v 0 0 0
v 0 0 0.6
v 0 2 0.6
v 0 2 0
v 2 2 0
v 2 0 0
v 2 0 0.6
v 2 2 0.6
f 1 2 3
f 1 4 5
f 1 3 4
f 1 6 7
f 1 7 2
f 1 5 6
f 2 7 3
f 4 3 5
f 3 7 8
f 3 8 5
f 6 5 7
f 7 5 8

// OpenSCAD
/* Warning, this is a very basic generator with a lot of approximation 
input data : [UDFN, Q2B, 2x2x0.6mm, 8, , B, C04-21353B]
generated by com.zoubworld.electronics.cad.model3d.Basic
Date : Sun Feb 15 10:50:49 CET 2026
*/

//body
color("black")
translate([0,0,0])
cube([2.0,2.0,0.6], center=false);
